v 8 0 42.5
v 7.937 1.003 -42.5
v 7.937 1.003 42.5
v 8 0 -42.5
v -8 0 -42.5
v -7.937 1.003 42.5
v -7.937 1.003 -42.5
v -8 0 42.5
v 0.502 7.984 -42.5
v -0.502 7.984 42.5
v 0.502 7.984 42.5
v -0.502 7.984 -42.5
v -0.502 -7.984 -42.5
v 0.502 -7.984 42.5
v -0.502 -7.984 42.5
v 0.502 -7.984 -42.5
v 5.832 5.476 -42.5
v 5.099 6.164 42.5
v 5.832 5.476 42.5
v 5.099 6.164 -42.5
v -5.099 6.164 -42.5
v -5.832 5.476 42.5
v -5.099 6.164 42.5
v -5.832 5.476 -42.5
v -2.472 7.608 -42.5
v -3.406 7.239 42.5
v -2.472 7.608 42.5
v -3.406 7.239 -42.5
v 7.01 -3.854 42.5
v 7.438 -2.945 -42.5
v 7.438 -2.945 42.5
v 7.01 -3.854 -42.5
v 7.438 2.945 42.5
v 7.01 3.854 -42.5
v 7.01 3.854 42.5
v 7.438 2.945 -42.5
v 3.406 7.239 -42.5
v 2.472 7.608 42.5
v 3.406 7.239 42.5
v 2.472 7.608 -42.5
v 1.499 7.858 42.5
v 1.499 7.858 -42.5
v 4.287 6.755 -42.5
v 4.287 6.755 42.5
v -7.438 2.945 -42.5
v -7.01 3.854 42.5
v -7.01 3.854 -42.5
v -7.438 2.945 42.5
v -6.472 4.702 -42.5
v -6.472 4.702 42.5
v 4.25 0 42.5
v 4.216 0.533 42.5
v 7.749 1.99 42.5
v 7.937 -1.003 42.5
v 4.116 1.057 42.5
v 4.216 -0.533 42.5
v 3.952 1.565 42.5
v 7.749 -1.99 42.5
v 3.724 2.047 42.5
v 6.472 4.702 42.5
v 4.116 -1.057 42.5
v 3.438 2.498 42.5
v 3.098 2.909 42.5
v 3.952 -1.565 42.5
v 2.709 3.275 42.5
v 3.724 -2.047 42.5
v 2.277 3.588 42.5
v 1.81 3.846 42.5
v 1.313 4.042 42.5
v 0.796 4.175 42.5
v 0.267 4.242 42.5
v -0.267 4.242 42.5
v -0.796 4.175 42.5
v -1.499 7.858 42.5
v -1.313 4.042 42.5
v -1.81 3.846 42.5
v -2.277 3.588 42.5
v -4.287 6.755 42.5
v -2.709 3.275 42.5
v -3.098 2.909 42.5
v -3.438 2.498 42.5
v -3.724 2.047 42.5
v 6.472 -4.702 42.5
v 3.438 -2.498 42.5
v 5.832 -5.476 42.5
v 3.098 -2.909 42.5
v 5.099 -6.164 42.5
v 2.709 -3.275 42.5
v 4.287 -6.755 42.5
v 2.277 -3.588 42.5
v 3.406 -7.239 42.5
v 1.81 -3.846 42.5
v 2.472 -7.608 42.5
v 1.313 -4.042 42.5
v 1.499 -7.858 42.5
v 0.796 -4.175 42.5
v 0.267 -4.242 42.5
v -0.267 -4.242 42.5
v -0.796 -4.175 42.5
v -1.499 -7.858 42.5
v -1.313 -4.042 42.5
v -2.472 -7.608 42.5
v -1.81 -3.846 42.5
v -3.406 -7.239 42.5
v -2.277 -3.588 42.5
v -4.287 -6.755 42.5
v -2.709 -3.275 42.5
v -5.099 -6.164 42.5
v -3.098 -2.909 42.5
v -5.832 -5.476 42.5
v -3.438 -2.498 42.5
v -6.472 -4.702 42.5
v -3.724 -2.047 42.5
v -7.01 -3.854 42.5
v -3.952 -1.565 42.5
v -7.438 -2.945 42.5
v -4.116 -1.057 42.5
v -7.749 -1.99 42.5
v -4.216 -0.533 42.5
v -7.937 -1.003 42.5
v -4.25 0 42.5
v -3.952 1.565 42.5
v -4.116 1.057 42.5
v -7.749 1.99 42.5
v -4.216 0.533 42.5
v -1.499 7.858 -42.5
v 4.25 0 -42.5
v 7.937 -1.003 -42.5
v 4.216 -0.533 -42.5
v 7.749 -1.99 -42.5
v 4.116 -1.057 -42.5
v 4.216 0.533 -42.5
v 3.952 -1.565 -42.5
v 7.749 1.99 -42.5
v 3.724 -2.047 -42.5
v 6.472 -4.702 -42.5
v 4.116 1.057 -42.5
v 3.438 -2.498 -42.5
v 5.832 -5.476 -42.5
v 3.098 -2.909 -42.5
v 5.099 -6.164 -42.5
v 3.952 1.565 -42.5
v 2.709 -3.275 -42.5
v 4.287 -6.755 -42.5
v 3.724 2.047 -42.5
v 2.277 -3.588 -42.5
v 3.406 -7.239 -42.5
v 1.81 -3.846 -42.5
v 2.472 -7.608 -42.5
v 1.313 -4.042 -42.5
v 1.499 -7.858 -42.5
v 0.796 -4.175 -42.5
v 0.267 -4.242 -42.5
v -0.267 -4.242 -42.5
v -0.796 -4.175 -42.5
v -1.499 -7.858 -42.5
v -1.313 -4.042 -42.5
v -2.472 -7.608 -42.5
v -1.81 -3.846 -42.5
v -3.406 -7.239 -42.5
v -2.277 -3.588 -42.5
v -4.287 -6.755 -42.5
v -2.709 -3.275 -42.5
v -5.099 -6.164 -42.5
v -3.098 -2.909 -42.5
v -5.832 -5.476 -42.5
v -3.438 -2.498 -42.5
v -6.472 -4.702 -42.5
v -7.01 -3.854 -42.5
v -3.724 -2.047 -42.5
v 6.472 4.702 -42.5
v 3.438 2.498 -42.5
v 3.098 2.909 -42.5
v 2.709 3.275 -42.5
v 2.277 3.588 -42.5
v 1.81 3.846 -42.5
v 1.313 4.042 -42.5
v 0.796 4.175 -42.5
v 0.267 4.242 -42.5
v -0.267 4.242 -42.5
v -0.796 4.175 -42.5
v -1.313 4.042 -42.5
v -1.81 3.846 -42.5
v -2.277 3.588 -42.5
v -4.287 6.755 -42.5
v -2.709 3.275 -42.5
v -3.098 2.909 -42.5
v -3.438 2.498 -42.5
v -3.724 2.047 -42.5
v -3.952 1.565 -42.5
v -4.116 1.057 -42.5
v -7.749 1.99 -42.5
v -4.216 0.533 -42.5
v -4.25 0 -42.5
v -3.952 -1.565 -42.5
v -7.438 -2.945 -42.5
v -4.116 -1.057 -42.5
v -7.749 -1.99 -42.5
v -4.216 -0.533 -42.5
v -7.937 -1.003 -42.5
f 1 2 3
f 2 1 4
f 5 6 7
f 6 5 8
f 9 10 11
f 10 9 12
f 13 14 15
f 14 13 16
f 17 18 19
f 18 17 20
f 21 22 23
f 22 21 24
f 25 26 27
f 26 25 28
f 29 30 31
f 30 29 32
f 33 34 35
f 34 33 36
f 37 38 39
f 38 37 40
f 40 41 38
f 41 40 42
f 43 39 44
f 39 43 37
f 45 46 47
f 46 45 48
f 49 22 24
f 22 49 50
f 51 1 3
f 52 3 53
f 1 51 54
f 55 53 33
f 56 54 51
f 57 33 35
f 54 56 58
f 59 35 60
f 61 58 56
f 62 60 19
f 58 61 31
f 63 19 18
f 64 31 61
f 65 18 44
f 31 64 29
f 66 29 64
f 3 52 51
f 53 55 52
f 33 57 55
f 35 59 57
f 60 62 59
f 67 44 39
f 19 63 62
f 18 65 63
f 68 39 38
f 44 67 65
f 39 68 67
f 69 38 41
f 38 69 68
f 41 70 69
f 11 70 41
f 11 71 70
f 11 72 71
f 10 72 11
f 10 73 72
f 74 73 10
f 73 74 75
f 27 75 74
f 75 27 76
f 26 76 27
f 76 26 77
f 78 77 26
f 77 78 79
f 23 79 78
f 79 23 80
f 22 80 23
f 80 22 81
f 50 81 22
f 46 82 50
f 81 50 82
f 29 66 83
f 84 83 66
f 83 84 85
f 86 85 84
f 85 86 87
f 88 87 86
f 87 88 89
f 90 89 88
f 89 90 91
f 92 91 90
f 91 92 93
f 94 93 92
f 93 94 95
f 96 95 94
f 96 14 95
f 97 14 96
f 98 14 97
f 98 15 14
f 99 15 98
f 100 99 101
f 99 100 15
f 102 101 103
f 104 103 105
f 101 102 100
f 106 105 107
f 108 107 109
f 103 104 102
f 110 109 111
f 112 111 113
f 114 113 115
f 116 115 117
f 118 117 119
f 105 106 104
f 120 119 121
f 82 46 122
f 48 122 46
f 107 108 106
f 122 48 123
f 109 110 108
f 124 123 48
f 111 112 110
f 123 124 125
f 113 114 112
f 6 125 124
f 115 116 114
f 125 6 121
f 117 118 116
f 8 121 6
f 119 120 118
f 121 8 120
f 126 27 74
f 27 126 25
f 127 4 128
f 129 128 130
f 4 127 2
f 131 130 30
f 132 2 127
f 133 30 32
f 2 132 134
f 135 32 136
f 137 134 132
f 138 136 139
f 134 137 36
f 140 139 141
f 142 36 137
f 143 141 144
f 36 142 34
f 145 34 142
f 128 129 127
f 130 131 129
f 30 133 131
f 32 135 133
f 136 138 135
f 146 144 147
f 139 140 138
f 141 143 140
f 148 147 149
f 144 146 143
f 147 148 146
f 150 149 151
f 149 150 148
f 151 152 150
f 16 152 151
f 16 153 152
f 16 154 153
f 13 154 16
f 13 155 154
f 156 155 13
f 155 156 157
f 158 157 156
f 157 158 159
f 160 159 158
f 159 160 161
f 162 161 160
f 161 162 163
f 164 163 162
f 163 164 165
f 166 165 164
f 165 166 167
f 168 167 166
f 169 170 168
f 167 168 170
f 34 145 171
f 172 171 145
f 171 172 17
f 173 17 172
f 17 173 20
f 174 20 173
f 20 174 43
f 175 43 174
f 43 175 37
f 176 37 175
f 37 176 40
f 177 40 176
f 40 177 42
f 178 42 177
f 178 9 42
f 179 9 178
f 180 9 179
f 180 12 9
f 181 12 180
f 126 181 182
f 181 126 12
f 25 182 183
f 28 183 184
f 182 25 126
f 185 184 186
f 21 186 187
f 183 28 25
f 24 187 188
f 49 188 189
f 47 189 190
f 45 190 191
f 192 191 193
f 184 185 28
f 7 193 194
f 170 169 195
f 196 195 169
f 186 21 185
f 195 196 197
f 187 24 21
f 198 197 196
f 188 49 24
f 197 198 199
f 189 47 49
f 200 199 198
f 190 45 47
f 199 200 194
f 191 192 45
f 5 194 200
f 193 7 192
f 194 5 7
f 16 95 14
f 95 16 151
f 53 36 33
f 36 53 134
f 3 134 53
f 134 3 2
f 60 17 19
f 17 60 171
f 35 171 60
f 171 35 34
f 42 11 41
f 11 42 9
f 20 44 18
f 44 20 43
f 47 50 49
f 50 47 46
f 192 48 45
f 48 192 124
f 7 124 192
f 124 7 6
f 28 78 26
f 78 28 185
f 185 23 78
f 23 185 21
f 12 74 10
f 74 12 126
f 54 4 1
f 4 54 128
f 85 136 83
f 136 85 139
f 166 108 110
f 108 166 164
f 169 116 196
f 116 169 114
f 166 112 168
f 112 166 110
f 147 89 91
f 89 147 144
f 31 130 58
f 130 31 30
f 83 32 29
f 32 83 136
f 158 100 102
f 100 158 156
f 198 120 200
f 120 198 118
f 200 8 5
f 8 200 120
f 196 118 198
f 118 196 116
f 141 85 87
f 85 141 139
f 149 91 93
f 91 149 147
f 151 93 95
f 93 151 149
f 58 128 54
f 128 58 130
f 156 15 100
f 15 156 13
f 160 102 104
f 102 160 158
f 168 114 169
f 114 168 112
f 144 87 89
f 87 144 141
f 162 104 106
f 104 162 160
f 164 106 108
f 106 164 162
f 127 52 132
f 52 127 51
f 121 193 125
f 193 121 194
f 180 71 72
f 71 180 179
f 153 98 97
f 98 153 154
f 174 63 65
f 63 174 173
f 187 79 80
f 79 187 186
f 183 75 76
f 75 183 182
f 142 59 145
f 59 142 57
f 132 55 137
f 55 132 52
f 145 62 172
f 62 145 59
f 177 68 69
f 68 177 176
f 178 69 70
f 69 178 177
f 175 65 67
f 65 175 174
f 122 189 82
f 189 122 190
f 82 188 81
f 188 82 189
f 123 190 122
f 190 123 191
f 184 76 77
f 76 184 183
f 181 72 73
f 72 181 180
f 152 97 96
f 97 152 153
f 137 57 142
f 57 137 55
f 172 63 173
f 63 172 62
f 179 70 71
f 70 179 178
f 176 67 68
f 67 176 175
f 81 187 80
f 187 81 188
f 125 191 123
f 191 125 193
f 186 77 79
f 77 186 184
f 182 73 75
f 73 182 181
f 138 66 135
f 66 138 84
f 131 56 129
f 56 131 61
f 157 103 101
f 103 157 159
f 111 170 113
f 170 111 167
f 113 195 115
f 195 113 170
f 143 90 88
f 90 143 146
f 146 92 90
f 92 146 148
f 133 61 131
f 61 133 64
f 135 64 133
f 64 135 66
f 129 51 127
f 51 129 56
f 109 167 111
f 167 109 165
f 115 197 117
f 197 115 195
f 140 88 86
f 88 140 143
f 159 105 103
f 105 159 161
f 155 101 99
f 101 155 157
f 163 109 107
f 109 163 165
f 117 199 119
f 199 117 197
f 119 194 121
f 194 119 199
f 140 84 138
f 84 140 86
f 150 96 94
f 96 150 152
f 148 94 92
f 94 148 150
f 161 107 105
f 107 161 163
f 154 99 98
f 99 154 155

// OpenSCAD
$fn = 50;


difference() {
	union() {
		translate(v = [0, 0, -42.5000000000]) {
			cylinder(h = 85, r = 8.0000000000);
		}
	}
	union() {
		translate(v = [0, 0, -100.0000000000]) {
			cylinder(h = 200, r = 4.2500000000);
		}
	}
}
